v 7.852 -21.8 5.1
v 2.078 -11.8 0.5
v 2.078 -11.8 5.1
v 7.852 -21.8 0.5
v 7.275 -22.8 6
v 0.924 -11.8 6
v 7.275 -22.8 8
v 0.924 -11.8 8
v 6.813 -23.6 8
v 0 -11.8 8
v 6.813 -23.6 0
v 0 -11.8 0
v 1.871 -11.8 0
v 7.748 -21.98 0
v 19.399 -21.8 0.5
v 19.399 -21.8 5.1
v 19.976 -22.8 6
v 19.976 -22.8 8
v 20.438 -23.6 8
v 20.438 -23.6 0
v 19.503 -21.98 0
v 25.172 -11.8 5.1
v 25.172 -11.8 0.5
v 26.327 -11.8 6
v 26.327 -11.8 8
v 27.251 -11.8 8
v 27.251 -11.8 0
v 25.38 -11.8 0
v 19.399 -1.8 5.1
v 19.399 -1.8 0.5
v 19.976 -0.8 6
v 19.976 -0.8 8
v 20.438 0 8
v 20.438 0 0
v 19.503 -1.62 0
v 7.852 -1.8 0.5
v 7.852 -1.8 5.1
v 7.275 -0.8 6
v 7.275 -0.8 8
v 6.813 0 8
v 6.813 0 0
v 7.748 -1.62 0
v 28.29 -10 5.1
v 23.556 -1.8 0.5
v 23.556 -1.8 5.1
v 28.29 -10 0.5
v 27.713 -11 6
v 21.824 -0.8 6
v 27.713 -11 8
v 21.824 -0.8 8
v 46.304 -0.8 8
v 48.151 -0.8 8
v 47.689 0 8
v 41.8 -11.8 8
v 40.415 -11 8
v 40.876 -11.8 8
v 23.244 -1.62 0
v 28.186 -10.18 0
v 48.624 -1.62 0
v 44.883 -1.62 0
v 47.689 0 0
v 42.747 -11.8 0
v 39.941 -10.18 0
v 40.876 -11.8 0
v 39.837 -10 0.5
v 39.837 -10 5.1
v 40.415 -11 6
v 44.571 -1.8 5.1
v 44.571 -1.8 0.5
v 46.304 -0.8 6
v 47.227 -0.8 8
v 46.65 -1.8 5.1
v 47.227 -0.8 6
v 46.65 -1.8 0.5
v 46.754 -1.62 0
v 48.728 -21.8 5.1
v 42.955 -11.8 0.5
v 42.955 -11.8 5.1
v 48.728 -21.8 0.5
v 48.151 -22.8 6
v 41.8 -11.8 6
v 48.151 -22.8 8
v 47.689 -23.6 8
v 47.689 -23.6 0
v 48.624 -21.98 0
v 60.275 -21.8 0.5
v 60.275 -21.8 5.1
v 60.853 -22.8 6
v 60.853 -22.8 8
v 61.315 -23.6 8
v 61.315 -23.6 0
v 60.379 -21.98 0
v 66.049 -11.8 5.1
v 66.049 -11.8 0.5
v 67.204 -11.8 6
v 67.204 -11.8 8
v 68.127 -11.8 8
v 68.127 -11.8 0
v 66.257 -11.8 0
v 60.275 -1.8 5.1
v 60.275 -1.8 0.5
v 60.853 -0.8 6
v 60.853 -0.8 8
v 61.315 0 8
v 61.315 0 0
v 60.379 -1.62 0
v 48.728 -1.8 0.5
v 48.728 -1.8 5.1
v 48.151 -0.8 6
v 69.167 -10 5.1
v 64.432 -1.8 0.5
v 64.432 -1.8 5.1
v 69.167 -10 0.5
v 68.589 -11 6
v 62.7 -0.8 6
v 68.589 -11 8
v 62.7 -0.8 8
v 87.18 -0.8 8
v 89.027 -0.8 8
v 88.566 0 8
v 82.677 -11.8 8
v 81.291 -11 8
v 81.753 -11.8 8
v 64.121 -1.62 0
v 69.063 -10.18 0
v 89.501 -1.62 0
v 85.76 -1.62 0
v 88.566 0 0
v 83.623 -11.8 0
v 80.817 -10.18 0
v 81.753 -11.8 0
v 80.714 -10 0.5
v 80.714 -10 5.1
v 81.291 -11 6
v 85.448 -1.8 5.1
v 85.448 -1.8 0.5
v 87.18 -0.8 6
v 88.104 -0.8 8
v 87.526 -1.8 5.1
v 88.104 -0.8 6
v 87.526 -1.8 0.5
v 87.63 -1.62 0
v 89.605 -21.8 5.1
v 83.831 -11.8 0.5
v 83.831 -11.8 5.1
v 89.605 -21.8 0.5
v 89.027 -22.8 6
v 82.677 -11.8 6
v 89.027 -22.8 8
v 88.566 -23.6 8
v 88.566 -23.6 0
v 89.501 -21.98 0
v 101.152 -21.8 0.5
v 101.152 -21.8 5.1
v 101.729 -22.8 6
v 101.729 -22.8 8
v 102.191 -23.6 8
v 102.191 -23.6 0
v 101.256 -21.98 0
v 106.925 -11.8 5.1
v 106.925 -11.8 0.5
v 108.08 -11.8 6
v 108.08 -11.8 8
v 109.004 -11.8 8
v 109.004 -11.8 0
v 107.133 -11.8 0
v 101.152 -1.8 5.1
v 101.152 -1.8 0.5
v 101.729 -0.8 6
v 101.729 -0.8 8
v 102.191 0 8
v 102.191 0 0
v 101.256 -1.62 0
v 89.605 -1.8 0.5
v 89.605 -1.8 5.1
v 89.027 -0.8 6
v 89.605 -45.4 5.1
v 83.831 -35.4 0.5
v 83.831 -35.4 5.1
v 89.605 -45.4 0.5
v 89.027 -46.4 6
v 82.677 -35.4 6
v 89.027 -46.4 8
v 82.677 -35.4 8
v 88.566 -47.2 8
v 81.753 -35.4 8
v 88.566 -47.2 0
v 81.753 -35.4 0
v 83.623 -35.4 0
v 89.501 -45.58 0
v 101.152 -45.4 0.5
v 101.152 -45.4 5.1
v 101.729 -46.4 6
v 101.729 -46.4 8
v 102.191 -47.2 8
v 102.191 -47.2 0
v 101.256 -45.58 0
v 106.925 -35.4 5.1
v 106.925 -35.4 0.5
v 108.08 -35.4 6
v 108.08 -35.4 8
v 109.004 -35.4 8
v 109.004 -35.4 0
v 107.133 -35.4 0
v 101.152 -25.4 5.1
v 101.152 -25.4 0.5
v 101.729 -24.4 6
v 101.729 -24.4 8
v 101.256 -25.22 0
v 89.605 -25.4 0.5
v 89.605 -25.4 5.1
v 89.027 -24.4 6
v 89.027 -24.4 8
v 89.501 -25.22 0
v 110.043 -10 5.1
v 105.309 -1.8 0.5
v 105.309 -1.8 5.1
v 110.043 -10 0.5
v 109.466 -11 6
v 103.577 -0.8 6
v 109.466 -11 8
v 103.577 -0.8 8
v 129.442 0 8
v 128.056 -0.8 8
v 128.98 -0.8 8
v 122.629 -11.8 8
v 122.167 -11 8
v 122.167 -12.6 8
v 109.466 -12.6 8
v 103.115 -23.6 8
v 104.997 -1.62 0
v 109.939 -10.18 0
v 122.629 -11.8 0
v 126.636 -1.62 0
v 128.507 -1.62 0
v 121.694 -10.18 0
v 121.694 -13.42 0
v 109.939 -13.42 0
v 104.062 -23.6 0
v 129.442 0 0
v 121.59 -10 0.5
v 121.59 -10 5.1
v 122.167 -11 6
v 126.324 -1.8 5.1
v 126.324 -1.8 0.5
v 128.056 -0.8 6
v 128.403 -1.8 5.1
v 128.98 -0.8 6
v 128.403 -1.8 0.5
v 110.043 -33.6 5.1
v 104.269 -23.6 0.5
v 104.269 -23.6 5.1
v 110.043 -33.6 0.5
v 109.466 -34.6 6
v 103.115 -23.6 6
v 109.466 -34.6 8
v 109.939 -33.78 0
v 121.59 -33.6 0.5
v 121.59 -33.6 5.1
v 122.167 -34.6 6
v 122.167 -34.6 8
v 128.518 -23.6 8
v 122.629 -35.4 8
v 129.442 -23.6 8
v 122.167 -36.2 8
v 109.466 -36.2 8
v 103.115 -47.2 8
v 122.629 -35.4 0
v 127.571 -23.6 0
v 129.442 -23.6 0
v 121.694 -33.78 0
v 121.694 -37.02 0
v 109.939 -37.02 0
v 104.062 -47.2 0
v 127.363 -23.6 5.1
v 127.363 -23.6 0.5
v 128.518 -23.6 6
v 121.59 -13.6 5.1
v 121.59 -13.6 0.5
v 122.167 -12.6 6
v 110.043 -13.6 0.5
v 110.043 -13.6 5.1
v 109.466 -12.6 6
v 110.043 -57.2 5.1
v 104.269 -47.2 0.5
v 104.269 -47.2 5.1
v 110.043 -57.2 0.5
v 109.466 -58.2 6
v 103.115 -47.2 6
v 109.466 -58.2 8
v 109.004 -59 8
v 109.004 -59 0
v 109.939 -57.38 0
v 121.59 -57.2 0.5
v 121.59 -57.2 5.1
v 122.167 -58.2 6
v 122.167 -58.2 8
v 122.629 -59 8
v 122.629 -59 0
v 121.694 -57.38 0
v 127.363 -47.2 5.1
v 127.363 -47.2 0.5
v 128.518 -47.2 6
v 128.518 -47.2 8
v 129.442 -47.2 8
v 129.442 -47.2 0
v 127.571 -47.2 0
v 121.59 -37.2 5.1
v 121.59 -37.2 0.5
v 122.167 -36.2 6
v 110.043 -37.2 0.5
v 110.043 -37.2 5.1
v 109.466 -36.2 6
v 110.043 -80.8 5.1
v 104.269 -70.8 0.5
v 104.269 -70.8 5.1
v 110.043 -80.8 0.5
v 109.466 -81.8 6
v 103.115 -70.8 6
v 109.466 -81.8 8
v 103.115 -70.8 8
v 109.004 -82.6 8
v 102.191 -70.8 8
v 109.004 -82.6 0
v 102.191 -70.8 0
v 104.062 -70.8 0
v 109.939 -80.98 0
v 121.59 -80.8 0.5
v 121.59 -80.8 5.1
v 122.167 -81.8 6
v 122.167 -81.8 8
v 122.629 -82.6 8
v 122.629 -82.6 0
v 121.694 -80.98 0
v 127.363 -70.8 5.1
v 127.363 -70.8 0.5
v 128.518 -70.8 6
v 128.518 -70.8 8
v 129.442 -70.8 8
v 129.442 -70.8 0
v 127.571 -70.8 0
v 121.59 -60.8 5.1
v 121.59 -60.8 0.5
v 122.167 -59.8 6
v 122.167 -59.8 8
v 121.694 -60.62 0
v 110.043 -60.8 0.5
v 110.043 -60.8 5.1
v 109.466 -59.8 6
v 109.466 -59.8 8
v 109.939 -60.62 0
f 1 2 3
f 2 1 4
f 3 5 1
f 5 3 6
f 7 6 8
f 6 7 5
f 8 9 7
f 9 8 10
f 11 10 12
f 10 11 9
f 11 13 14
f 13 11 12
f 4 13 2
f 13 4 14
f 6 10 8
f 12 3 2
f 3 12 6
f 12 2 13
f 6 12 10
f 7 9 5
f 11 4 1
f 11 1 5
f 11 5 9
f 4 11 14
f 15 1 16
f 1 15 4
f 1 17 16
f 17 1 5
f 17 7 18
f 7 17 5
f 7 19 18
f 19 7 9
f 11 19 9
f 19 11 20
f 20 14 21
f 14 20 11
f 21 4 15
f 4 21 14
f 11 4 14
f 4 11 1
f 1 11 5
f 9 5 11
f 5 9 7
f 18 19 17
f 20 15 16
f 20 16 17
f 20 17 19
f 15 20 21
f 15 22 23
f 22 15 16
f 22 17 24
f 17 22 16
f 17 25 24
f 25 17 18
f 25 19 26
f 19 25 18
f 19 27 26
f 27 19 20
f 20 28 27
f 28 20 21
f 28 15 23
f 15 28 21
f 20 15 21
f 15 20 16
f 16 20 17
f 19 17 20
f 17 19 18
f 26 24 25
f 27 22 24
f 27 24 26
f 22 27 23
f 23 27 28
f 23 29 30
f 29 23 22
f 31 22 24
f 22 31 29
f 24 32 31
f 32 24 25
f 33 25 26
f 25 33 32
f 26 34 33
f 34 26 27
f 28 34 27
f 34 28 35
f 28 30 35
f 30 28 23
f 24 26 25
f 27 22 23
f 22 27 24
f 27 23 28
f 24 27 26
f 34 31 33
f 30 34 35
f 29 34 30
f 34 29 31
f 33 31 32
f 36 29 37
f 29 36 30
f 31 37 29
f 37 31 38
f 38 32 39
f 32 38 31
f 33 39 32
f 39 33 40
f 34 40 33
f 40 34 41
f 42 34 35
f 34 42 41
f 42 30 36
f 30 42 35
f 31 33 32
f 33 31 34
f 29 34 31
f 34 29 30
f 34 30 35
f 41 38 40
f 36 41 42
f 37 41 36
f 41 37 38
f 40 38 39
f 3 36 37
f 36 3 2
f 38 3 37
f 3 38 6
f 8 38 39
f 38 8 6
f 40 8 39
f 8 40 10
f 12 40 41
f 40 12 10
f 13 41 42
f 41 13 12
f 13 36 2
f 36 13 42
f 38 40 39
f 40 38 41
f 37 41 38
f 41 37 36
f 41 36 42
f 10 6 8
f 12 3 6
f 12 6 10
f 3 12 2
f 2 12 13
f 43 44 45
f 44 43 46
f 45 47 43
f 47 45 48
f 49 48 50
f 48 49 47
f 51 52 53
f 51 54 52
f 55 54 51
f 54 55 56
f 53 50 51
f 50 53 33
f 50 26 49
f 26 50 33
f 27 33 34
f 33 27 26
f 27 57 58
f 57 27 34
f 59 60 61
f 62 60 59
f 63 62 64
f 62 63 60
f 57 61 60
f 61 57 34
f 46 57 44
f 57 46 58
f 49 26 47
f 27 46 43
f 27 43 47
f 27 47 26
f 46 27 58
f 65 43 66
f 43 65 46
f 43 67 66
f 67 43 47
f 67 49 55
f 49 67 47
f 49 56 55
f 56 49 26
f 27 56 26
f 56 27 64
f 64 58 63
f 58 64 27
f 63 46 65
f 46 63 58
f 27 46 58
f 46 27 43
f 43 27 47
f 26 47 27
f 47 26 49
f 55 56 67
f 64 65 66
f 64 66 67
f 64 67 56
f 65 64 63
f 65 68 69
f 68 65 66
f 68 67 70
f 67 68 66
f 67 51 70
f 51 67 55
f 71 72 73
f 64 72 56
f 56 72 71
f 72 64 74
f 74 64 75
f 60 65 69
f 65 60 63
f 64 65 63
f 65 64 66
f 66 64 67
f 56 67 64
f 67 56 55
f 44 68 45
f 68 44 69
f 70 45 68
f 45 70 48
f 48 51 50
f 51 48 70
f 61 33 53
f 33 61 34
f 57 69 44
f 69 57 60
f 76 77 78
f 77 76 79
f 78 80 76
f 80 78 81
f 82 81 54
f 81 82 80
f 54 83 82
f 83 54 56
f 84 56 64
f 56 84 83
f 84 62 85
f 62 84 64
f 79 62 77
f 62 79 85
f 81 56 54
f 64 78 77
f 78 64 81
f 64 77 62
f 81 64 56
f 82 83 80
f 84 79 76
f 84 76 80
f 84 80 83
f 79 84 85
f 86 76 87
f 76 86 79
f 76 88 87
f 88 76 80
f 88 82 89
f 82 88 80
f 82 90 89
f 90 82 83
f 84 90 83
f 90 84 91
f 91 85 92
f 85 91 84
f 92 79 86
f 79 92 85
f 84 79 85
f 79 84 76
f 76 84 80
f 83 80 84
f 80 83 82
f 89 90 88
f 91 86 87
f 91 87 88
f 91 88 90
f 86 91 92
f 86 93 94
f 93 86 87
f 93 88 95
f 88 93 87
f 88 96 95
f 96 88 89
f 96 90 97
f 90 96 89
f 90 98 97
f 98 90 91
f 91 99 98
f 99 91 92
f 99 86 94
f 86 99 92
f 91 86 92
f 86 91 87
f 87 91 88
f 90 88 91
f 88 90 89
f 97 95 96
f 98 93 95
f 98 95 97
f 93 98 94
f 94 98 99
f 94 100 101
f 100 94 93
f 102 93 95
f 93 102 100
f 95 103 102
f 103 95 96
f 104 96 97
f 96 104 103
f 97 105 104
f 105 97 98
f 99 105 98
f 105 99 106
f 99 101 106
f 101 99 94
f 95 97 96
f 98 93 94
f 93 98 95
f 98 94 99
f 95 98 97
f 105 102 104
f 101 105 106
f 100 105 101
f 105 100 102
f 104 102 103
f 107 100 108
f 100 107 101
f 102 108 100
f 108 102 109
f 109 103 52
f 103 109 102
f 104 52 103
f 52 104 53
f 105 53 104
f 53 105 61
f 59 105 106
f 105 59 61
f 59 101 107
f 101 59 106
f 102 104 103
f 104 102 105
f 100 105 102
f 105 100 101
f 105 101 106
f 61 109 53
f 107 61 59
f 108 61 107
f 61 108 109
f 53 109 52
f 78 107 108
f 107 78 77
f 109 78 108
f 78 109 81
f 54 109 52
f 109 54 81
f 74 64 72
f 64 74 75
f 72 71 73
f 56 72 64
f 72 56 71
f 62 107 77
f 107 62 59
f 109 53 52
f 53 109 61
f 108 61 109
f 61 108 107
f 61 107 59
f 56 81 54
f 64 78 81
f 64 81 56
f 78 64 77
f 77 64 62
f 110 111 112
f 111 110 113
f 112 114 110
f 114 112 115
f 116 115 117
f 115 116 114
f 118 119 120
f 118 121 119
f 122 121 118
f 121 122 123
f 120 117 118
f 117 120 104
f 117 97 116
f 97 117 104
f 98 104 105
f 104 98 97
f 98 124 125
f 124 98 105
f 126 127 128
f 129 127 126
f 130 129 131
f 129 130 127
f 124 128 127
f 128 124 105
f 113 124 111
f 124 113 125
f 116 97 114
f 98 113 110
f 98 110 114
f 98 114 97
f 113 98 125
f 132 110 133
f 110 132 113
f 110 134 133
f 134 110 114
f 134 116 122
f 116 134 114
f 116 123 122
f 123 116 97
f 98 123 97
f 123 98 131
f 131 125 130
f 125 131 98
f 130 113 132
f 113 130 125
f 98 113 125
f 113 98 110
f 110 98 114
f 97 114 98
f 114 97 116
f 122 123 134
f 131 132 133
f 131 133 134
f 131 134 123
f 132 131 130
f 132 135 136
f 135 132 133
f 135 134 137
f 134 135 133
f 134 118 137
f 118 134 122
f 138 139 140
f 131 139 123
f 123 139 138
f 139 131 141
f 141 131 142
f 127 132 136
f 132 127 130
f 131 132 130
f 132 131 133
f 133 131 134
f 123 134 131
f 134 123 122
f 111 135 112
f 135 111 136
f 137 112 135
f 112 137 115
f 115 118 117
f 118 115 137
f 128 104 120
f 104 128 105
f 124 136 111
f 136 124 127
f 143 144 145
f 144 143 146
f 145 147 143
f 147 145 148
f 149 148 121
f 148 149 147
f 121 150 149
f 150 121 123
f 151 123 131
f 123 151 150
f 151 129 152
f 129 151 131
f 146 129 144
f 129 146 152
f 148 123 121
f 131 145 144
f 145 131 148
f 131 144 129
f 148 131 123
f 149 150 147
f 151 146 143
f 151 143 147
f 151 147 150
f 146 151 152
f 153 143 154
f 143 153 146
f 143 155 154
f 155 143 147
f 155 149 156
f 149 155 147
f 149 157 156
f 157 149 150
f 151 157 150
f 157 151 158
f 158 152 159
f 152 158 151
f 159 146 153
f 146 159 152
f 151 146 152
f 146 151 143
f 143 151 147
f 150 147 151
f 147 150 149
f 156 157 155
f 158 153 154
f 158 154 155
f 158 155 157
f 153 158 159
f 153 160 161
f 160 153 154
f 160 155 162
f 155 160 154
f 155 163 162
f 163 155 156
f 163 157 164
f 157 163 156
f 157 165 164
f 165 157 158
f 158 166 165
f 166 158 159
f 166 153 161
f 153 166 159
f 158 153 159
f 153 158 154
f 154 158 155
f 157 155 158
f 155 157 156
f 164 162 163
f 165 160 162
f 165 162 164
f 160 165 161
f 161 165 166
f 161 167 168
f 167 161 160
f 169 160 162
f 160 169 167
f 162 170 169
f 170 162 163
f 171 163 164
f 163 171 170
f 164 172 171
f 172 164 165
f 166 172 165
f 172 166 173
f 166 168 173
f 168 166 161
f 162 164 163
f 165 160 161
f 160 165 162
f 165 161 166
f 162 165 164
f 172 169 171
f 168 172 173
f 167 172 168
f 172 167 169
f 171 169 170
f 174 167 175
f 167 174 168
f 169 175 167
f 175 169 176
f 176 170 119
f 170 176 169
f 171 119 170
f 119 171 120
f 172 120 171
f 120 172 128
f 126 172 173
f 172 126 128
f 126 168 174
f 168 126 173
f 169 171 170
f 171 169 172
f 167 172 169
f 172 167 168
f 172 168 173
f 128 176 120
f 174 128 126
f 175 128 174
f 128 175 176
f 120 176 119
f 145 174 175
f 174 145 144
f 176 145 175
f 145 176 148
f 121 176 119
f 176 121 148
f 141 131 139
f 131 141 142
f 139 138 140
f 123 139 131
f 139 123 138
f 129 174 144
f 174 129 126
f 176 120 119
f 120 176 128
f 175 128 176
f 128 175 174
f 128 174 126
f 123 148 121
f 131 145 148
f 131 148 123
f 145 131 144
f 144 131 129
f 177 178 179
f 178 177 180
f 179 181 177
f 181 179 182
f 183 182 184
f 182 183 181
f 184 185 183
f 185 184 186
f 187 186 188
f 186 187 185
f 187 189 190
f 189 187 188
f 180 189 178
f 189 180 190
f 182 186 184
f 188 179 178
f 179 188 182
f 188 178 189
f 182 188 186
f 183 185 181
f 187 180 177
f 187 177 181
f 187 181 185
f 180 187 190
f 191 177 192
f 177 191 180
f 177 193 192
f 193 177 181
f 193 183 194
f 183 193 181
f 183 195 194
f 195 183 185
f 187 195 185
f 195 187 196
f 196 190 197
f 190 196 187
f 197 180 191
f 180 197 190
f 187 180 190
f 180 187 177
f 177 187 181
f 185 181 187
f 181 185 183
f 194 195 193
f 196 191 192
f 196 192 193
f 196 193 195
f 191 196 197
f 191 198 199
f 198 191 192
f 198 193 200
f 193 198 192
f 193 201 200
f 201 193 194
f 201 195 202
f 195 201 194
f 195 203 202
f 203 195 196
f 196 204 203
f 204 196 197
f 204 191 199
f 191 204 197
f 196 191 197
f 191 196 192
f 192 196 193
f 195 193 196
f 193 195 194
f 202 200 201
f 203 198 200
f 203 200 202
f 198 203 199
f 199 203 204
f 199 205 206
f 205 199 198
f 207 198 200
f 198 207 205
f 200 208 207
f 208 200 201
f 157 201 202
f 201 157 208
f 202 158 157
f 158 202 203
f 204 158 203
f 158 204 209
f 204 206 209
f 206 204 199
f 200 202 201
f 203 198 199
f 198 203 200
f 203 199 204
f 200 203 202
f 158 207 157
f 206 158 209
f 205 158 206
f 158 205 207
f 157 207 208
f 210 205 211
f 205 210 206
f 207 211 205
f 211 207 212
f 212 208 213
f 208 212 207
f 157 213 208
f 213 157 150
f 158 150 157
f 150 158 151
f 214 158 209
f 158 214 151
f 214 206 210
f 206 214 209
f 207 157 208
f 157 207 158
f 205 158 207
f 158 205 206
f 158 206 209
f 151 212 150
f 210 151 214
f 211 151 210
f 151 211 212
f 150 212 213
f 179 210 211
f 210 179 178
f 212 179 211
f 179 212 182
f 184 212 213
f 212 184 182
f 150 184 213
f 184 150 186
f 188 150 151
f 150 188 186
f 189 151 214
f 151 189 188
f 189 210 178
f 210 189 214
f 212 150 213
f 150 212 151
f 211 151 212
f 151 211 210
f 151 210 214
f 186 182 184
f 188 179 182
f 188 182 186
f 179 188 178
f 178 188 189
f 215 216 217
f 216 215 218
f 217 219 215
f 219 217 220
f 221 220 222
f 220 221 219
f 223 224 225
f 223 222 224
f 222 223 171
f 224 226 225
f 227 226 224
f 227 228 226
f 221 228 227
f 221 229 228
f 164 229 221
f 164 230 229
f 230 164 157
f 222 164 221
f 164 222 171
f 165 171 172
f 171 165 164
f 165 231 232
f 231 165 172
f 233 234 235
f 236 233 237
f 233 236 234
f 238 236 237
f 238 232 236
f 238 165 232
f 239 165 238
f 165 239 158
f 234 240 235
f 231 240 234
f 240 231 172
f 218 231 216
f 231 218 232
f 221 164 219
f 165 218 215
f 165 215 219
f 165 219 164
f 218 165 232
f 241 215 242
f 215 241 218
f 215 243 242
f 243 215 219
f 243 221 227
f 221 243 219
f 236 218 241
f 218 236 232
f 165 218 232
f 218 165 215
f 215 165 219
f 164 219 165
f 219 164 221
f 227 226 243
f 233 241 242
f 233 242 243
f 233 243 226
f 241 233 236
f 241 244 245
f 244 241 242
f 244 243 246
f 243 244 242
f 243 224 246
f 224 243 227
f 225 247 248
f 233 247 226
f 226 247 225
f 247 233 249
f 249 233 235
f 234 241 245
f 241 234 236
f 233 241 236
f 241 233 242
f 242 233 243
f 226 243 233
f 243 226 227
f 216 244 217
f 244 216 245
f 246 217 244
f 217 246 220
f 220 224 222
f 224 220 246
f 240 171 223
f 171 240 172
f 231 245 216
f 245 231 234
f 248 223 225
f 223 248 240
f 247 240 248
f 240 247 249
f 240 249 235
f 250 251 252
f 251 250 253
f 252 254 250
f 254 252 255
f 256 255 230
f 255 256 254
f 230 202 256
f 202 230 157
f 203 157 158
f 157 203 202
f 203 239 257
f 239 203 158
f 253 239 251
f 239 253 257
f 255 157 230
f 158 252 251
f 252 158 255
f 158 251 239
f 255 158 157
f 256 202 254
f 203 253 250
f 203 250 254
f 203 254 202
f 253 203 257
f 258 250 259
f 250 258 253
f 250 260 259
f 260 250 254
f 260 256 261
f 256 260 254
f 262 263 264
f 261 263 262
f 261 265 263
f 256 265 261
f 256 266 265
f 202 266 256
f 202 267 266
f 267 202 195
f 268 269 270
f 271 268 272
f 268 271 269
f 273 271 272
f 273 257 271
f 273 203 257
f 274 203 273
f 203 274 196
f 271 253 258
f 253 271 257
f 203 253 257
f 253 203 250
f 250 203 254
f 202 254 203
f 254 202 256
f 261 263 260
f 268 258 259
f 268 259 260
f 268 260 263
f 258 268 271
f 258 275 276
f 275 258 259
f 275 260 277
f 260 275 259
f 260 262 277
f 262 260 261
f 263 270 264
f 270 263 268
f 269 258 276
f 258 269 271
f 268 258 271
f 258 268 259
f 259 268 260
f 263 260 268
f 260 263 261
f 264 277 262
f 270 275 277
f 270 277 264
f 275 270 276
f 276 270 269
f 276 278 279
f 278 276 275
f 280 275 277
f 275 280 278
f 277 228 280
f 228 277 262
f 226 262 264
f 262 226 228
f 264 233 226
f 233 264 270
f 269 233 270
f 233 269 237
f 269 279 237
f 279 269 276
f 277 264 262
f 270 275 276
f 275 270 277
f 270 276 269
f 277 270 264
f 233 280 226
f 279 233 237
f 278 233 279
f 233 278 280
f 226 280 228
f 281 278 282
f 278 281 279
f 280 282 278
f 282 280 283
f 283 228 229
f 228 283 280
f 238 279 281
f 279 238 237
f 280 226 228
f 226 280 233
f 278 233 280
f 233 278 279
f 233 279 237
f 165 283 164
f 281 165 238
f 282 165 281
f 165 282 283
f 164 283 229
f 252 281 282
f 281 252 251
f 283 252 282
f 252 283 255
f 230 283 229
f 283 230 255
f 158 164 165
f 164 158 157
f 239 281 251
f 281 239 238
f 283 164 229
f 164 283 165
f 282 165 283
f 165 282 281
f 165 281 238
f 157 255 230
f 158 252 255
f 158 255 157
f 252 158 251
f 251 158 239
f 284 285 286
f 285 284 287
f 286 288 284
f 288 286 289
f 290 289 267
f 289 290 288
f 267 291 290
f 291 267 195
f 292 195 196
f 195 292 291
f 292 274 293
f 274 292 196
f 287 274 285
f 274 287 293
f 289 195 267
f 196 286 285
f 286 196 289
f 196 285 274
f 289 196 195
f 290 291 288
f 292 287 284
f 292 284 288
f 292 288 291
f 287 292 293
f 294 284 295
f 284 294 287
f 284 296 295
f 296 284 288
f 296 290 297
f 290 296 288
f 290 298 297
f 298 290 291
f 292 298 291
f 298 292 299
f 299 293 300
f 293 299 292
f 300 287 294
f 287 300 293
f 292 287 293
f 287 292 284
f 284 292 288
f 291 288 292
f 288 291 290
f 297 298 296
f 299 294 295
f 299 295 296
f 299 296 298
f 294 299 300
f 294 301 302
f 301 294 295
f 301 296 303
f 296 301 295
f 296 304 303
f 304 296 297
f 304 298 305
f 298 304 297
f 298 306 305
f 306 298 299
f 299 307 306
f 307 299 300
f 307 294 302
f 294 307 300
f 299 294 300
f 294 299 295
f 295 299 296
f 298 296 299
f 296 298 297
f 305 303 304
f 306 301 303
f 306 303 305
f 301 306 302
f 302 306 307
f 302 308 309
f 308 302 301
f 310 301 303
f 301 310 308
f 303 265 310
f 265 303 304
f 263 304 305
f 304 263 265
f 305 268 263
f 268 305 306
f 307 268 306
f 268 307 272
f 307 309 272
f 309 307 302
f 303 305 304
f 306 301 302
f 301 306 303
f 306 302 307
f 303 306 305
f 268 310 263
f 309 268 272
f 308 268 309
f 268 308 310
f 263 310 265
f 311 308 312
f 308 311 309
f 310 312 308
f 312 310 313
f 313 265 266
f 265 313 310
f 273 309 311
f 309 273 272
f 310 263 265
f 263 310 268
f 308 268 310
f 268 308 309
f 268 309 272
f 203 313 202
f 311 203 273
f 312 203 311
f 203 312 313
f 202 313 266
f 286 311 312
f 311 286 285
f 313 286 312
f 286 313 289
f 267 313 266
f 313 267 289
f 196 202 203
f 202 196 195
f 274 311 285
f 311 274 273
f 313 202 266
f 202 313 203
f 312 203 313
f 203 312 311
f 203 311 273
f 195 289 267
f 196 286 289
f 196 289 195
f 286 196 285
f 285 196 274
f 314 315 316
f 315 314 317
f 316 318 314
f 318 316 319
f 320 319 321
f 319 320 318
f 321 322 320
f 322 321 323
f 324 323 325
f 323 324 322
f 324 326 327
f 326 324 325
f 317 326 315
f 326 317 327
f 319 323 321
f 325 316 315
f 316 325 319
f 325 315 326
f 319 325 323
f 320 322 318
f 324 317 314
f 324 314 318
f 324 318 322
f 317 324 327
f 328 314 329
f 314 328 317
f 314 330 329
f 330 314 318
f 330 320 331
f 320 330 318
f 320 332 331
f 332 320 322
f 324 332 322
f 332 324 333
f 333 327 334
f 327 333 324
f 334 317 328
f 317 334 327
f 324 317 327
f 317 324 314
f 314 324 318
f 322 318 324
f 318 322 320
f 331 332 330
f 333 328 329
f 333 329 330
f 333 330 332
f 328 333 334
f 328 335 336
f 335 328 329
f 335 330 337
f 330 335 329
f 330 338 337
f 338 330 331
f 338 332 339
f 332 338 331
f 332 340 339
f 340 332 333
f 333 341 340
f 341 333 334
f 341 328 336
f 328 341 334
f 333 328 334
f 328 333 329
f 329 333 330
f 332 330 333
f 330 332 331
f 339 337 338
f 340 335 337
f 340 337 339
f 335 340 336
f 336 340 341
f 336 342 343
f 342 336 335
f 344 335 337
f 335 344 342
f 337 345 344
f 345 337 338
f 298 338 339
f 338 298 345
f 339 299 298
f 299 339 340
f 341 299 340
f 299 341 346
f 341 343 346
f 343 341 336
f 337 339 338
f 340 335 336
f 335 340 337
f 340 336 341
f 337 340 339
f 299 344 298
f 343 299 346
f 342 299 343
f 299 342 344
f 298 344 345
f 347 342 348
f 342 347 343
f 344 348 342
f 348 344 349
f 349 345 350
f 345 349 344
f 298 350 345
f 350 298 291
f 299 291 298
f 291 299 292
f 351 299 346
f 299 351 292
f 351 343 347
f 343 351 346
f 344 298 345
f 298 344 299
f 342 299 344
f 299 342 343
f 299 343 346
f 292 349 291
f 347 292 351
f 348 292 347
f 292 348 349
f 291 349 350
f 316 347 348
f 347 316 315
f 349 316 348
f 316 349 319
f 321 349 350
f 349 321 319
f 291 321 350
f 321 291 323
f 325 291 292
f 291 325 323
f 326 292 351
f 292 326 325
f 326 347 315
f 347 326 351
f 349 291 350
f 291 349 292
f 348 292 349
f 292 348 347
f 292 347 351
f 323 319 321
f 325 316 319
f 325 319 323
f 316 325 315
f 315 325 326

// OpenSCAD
/*[ Hex unit size ]*/

//Depth of the grid
depth = 8;
//Width of the hexagon's hole (flat side to flat side)
hole_width = 20;
//Thickness of the wall forming each hexagon
wall_thickness = 1.8;

/*[ Grid size settings ]*/
max_grid_width=100;
max_grid_height=100;

/*[ Grid shape ]*/
//If checked, ignores custom column sizes and fills grid to maximum size.
fill=false;;
flip_staggering=true;
//Amount of hexagons per column. Each entry defines a one column, where the number specifies the amount of hex units that will be generated for the respective column. (Ignored if "fill" is checked)
columns=[1,1,1,1,2,4];
include_offsets=false;
//Optional: Offset for each column. This will ignore grid size limits.
column_offsets=[0,-2,-3,-1,0,2,4];
include_gaps=false;
//Optional: Gaps for each column. *NOTE: Change these values in the code. Seems like 2D vector parameters aren't supported by the parameter editor and are always overwritten by the defaults.
column_gaps=[[], [3,4], [4,5], [2]];

/*[ Flat edges ]*/
edge_left = false;
edge_top = true;
edge_right = false;
edge_bottom = false;


//Calculated global variables
//Hexagon dimensions
hex_inner_r = hole_width/sqrt(3); //Inner radius/side length (center to point)
hex_h=hole_width+wall_thickness*2; //Outer side to side distance
hex_s=hex_h/sqrt(3); //Outer radius/side length 
hex_d=2*hex_s; //Outer diameter (point to point)
hex_t=hex_s/2;
//Grid dimensions
max_grid_hexagons_x = fill? floor(max_grid_width/(hex_d-hex_t) +(edge_left?0.5:0) +(edge_right?0.5:0)): len(columns);
max_grid_hexagons_y = fill? floor(max_grid_height/hex_h +(edge_top?0.5:0) +(edge_bottom?0.5:0)): max(columns);
max_grid_hexagons_y_lo = fill? floor(max_grid_height/hex_h - 0.5 +(edge_top?0.5:0) +(edge_bottom?0.5:0)): (max(columns) - 0.5);
total_width = max_grid_hexagons_x * (hex_d-hex_t) + hex_t;
total_height = hex_h*max(max_grid_hexagons_y - 0.5, max_grid_hexagons_y_lo);


translate([edge_left?0:hex_s, edge_top?0:-hex_h/2, 0])
grid(columns, include_offsets?column_offsets:[], include_gaps?column_gaps:[], depth, hole_width, wall_thickness, fill);


module grid(cols, offsets, gaps, height, hole_width, wall_width, fill){    
    for(hcol = [0:fill?max_grid_hexagons_x-1:(len(cols)-1)]){
        for(hrow = [0:(fill?(max_grid_hexagons_y-1):(cols[hcol]-1))]) {
            skip = hcol<len(gaps) && len(search(hrow+1, gaps[hcol])) > 0;          
            if(!skip){
                offset_value=hcol>len(offsets)-1?0:offsets[hcol];
                
                lo = (hcol+(flip_staggering?1:0))%2;
                x = (hex_d-hex_t)*hcol;
                y = -(hex_h)*(hrow + offset_value + lo/2);                
                
                if(hcol<max_grid_hexagons_x && hrow<(lo==0?max_grid_hexagons_y:max_grid_hexagons_y_lo)){
                    left = edge_left && hcol==0;
                    top = edge_top && hrow==0 && hcol%2==(flip_staggering?1:0);
                    right = edge_right && hcol==max_grid_hexagons_x-1;
                    bottom = edge_bottom && hrow+1==(lo==0?max_grid_hexagons_y:max_grid_hexagons_y_lo) && -y+hex_h>total_height+0.001 && -y+hex_h/2<=total_height;
                    translate([x, y, 0]) halfhex(height, hex_s, wall_width, hole_width, left, top, right, bottom);
                }
            }        
        }
    }
}

module halfhex(height, radius, wall_thickness, hole_width, left, top, right, bottom){
    difference(){
        union(){
            hex(height, radius, wall_thickness, hole_width);
            if(left) translate([0, hex_h/2, 0]) wall(depth, wall_thickness, hex_h);
            if(top) translate([hex_d/2, 0, 0]) rotate([0,0,-90]) wall(depth, wall_thickness, hex_d);
            if(right) translate([0, -hex_h/2, 0]) rotate([0,0,180]) wall(depth, wall_thickness, hex_h);
            if(bottom) translate([-hex_d/2, 0, 0]) rotate([0,0,90]) wall(depth, wall_thickness, hex_d);
        }
        if(left) translate([-hex_d/2, -hex_h, 0]) cube([hex_d/2, 2*hex_h, depth]);
        if(top) translate([-hex_d/2, 0, 0]) cube([hex_d, hex_h, depth]);
        if(right) translate([0, -hex_h, 0]) cube([hex_d/2, 2*hex_h, depth]);
        if(bottom) translate([-hex_d/2, -hex_h, 0]) cube([hex_d, hex_h, depth]);
    }
}

module hex(height, radius, wall_thickness, hole_width){
    for(i=[0:5]){
        rotate([0,0,i*60+30])
        translate([-hole_width/2-wall_thickness, radius/2, 0])
        wall(height, wall_thickness, radius);
    }
}

module wall(height, wall_thickness, length){
    hmax=height;
    hmin=5.1;
    hd=2;
    tmax=wall_thickness;
    tmin=wall_thickness-1;   
    ft = 0.18;//fillet thickness
    fh = 0.5;//fillet height
    color("blue")
    difference(){
        color([0,0,1])
        rotate([90,0,0])
            linear_extrude(length)   
            polygon([[0,0], [0,hmax], [tmin,hmax], [tmin,hmax-hd], [tmax,hmin], [tmax,fh], [tmax-ft,0]]);
        //Fillet
        rotate([0,0,-30])
            cube([4*tmax, 2*tmax, hmax]);
        mirror([0,1,0])
            translate([0,length,0])
            rotate([0,0,-30])
            cube([4*tmax, 2*tmax, hmax]);
    }
}
